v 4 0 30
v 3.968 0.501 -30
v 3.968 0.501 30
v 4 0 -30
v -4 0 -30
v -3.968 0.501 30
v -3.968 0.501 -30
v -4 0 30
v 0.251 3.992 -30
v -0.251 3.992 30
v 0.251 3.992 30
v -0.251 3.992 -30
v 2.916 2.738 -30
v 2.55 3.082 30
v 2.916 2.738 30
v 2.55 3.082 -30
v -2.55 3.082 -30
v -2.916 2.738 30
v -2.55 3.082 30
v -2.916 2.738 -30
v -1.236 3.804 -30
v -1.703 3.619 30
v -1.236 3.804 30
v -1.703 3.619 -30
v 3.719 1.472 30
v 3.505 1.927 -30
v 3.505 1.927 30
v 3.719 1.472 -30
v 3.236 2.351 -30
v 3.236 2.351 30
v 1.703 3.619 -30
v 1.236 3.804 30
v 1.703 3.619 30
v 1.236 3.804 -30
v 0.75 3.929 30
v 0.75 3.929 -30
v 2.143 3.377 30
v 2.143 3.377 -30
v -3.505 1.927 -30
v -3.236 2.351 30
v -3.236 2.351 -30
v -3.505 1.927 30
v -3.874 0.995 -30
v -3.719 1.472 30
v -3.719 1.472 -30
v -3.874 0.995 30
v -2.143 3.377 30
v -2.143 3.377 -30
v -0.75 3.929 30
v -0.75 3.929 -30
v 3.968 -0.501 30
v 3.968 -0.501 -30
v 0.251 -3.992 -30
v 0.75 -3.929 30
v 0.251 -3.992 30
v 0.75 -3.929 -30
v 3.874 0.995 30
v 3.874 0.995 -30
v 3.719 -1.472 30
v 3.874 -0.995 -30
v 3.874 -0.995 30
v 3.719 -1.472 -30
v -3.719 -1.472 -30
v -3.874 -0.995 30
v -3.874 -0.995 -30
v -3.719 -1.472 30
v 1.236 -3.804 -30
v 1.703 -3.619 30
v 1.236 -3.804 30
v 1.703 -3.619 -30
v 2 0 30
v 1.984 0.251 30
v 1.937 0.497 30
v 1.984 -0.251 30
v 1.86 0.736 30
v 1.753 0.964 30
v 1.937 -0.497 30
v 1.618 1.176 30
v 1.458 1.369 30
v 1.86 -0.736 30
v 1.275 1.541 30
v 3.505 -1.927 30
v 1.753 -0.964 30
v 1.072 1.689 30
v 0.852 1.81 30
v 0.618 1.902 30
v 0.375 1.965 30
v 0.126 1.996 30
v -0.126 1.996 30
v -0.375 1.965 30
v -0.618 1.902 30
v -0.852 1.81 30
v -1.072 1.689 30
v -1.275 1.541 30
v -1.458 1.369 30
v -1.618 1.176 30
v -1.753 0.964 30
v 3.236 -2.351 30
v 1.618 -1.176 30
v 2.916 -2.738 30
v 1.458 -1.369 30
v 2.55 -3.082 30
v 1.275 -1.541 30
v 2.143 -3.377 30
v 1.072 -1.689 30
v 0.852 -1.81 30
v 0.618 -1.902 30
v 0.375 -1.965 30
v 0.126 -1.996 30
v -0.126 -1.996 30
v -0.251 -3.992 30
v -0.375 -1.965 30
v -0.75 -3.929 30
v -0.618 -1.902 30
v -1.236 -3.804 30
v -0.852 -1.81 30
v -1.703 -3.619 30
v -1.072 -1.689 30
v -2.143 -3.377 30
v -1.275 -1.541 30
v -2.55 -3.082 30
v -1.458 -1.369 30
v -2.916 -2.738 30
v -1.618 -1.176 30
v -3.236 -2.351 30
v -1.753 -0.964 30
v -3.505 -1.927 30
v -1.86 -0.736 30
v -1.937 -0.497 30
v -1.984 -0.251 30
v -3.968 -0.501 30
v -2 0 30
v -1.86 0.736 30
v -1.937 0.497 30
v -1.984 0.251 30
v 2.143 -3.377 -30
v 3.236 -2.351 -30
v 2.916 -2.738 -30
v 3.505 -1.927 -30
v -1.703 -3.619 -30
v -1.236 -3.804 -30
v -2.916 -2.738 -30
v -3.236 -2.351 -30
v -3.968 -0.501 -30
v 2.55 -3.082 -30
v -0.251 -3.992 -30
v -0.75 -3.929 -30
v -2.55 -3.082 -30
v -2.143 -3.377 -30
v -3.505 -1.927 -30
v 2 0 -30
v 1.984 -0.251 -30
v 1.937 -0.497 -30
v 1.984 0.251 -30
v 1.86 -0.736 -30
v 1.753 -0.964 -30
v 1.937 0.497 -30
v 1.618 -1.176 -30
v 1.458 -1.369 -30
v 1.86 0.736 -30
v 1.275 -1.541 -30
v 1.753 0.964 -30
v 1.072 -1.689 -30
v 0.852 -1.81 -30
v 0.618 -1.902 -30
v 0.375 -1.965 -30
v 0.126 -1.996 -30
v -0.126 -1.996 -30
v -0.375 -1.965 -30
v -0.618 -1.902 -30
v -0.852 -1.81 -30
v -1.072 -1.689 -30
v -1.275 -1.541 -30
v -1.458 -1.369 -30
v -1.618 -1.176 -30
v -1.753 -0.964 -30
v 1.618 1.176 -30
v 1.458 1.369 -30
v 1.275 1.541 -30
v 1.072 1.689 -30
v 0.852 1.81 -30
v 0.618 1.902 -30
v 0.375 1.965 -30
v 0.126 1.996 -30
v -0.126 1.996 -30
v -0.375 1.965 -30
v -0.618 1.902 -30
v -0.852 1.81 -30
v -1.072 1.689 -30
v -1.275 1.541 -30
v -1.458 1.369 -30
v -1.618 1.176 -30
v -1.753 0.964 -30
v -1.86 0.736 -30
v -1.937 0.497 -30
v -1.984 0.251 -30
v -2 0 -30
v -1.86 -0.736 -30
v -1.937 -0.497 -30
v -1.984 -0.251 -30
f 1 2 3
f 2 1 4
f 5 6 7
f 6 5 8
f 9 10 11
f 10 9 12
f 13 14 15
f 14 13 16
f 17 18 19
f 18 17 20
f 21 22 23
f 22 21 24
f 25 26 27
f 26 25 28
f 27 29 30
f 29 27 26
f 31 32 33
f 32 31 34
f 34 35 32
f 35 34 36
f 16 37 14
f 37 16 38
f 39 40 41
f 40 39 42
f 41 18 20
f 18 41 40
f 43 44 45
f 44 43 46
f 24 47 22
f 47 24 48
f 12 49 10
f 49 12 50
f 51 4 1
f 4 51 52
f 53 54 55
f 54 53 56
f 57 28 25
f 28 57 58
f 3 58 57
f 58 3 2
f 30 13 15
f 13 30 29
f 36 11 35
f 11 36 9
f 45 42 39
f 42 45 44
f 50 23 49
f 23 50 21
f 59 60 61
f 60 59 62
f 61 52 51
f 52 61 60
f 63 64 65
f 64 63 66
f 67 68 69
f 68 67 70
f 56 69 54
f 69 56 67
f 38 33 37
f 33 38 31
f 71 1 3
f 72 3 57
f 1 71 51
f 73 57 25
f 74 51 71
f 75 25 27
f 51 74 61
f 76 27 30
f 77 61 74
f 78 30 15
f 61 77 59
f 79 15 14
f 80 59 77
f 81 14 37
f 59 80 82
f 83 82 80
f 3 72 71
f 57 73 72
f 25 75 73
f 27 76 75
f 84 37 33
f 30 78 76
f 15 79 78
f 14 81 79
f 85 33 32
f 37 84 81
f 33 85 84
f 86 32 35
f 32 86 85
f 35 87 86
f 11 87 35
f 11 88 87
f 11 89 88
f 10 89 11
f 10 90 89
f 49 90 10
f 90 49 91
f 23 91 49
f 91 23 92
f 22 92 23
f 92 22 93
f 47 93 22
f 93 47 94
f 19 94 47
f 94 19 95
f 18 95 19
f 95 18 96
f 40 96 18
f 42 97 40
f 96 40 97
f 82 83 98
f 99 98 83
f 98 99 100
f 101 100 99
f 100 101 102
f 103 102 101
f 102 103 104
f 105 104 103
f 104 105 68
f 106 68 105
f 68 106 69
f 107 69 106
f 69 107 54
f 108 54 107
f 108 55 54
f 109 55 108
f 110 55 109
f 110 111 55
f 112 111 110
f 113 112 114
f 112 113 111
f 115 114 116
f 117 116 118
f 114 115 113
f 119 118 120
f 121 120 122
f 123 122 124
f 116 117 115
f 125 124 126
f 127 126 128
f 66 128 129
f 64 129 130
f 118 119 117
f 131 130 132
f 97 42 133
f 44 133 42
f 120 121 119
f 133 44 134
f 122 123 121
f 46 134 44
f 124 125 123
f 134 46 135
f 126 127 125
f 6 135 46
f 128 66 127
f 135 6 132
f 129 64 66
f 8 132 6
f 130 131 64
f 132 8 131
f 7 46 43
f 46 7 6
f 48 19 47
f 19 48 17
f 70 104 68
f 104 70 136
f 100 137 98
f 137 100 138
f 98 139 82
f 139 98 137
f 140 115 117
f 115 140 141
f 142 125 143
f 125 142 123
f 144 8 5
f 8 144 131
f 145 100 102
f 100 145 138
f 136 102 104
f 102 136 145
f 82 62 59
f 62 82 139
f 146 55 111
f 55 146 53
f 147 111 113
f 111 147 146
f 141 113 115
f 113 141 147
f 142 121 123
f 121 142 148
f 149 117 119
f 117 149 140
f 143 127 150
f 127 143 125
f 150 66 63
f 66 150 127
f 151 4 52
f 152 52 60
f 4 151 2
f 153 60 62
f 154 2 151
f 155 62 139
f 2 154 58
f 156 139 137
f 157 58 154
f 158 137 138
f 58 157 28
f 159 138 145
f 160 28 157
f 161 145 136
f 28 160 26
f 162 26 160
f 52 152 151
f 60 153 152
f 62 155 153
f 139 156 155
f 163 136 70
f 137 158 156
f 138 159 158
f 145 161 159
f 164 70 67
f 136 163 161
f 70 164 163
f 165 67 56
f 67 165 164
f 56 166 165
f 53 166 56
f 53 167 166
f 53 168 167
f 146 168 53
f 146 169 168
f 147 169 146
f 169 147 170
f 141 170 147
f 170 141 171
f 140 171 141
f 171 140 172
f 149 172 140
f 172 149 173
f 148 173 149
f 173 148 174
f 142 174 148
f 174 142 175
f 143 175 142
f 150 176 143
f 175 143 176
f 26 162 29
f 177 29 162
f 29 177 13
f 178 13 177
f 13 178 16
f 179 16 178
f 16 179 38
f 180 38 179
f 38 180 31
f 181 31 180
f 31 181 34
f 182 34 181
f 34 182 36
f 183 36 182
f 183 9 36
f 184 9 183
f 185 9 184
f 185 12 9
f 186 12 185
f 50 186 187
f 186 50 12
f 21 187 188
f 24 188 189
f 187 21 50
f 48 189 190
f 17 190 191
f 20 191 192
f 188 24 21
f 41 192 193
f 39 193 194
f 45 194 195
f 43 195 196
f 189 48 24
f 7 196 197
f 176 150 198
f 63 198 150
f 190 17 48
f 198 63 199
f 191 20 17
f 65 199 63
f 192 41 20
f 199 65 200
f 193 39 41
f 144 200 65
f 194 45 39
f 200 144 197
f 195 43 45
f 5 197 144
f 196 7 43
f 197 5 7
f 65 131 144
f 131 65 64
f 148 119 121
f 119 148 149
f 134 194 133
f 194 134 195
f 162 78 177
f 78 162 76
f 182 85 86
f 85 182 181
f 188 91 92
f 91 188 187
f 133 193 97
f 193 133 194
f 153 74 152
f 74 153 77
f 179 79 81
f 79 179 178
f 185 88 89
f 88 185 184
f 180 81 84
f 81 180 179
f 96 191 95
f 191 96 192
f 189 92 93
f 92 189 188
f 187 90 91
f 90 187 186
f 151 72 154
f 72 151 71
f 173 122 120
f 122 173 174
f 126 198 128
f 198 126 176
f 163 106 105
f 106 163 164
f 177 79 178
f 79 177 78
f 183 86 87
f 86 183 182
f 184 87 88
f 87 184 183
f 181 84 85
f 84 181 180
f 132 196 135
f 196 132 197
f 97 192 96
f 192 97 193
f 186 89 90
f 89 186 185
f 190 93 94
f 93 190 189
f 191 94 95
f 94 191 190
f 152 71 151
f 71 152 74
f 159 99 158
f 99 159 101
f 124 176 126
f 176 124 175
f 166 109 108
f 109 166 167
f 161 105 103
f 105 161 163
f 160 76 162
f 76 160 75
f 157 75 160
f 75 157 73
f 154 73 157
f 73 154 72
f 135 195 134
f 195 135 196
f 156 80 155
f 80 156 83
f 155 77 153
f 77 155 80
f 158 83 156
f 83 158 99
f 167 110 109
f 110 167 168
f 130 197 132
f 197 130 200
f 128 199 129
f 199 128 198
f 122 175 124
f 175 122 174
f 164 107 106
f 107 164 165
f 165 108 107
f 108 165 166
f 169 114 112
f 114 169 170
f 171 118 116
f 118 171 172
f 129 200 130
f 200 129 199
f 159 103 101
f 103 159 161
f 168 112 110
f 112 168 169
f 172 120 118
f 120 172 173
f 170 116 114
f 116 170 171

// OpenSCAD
$fn = 50;


difference() {
	union() {
		translate(v = [0, 0, -30.0000000000]) {
			cylinder(h = 60, r = 4.0000000000);
		}
	}
	union() {
		translate(v = [0, 0, -100.0000000000]) {
			cylinder(h = 200, r = 2.0000000000);
		}
	}
}
